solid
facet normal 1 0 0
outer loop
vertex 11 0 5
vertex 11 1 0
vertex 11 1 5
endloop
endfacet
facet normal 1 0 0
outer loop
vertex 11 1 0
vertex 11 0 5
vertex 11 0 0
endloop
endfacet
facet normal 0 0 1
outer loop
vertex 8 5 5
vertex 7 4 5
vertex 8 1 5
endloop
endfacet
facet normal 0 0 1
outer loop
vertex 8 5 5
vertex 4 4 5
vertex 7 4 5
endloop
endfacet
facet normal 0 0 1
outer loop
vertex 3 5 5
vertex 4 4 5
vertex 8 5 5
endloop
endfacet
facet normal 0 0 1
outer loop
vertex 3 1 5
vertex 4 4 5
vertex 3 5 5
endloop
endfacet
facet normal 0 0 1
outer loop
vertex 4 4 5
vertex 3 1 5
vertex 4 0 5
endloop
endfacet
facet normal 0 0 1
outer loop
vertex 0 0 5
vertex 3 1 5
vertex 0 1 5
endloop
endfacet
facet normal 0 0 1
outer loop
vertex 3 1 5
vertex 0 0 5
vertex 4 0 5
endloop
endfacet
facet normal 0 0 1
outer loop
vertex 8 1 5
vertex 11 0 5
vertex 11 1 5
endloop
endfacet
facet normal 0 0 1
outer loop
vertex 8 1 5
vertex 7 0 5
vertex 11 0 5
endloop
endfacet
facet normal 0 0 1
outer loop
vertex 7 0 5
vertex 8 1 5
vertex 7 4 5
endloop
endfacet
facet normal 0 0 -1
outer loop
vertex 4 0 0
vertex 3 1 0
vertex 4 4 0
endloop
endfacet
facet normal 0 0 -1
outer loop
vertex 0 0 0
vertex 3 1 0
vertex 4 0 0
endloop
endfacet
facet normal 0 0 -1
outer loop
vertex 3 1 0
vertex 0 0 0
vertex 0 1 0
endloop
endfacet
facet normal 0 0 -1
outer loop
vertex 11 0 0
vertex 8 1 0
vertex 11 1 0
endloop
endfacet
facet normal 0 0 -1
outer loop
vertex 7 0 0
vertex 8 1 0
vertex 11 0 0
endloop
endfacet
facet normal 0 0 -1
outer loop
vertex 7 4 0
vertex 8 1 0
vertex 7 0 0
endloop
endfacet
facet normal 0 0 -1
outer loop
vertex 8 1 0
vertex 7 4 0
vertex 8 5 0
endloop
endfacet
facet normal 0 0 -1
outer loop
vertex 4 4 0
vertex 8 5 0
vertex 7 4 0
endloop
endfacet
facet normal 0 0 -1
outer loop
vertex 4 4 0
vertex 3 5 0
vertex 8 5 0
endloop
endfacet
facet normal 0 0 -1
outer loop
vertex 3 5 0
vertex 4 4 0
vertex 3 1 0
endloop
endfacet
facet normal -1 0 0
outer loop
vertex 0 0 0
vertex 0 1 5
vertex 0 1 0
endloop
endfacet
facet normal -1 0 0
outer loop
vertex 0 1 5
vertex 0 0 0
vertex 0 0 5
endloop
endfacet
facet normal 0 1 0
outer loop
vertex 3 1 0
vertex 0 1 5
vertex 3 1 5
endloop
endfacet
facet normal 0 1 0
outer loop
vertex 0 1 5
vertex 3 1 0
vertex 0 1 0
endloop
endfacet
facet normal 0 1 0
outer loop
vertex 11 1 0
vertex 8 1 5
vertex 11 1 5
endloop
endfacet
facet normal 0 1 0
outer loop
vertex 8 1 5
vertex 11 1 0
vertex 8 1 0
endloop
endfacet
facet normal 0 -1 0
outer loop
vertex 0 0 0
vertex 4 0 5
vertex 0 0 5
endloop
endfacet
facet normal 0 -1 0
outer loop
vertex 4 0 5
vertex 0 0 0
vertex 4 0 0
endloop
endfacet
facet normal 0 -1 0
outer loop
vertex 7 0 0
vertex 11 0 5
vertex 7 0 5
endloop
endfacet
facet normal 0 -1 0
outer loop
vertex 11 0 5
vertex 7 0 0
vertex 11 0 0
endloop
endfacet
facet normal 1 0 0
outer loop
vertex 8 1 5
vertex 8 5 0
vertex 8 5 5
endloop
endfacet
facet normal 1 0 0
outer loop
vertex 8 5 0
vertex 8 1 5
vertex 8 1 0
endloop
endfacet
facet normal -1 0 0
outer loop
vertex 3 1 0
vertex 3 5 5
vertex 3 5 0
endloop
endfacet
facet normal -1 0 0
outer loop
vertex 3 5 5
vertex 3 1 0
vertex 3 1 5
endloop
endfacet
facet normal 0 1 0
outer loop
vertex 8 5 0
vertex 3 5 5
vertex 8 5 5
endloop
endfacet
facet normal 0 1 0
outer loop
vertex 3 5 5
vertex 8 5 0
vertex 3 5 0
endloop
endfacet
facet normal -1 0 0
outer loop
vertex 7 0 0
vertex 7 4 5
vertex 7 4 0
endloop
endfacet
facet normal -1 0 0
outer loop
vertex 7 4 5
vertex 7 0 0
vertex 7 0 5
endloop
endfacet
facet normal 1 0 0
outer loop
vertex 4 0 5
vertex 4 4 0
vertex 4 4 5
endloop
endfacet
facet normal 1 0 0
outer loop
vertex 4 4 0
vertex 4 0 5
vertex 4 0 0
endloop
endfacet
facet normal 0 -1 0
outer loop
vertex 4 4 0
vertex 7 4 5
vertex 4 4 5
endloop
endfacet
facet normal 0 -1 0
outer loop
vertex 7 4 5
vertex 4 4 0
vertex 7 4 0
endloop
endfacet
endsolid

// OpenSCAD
// Uncomment before final render
//$fa = 0.01;
//$fs = 0.25;

module cableClip() {
  difference() {
    union() {
      cube([11, 1, 5]);
      translate([3, 1, 0]) {
        cube([5, 4, 5]);
      }
    }
    translate([4, -1, -1]) {
      cube([3, 5, 7]);
    }
  }
}

cableClip();
